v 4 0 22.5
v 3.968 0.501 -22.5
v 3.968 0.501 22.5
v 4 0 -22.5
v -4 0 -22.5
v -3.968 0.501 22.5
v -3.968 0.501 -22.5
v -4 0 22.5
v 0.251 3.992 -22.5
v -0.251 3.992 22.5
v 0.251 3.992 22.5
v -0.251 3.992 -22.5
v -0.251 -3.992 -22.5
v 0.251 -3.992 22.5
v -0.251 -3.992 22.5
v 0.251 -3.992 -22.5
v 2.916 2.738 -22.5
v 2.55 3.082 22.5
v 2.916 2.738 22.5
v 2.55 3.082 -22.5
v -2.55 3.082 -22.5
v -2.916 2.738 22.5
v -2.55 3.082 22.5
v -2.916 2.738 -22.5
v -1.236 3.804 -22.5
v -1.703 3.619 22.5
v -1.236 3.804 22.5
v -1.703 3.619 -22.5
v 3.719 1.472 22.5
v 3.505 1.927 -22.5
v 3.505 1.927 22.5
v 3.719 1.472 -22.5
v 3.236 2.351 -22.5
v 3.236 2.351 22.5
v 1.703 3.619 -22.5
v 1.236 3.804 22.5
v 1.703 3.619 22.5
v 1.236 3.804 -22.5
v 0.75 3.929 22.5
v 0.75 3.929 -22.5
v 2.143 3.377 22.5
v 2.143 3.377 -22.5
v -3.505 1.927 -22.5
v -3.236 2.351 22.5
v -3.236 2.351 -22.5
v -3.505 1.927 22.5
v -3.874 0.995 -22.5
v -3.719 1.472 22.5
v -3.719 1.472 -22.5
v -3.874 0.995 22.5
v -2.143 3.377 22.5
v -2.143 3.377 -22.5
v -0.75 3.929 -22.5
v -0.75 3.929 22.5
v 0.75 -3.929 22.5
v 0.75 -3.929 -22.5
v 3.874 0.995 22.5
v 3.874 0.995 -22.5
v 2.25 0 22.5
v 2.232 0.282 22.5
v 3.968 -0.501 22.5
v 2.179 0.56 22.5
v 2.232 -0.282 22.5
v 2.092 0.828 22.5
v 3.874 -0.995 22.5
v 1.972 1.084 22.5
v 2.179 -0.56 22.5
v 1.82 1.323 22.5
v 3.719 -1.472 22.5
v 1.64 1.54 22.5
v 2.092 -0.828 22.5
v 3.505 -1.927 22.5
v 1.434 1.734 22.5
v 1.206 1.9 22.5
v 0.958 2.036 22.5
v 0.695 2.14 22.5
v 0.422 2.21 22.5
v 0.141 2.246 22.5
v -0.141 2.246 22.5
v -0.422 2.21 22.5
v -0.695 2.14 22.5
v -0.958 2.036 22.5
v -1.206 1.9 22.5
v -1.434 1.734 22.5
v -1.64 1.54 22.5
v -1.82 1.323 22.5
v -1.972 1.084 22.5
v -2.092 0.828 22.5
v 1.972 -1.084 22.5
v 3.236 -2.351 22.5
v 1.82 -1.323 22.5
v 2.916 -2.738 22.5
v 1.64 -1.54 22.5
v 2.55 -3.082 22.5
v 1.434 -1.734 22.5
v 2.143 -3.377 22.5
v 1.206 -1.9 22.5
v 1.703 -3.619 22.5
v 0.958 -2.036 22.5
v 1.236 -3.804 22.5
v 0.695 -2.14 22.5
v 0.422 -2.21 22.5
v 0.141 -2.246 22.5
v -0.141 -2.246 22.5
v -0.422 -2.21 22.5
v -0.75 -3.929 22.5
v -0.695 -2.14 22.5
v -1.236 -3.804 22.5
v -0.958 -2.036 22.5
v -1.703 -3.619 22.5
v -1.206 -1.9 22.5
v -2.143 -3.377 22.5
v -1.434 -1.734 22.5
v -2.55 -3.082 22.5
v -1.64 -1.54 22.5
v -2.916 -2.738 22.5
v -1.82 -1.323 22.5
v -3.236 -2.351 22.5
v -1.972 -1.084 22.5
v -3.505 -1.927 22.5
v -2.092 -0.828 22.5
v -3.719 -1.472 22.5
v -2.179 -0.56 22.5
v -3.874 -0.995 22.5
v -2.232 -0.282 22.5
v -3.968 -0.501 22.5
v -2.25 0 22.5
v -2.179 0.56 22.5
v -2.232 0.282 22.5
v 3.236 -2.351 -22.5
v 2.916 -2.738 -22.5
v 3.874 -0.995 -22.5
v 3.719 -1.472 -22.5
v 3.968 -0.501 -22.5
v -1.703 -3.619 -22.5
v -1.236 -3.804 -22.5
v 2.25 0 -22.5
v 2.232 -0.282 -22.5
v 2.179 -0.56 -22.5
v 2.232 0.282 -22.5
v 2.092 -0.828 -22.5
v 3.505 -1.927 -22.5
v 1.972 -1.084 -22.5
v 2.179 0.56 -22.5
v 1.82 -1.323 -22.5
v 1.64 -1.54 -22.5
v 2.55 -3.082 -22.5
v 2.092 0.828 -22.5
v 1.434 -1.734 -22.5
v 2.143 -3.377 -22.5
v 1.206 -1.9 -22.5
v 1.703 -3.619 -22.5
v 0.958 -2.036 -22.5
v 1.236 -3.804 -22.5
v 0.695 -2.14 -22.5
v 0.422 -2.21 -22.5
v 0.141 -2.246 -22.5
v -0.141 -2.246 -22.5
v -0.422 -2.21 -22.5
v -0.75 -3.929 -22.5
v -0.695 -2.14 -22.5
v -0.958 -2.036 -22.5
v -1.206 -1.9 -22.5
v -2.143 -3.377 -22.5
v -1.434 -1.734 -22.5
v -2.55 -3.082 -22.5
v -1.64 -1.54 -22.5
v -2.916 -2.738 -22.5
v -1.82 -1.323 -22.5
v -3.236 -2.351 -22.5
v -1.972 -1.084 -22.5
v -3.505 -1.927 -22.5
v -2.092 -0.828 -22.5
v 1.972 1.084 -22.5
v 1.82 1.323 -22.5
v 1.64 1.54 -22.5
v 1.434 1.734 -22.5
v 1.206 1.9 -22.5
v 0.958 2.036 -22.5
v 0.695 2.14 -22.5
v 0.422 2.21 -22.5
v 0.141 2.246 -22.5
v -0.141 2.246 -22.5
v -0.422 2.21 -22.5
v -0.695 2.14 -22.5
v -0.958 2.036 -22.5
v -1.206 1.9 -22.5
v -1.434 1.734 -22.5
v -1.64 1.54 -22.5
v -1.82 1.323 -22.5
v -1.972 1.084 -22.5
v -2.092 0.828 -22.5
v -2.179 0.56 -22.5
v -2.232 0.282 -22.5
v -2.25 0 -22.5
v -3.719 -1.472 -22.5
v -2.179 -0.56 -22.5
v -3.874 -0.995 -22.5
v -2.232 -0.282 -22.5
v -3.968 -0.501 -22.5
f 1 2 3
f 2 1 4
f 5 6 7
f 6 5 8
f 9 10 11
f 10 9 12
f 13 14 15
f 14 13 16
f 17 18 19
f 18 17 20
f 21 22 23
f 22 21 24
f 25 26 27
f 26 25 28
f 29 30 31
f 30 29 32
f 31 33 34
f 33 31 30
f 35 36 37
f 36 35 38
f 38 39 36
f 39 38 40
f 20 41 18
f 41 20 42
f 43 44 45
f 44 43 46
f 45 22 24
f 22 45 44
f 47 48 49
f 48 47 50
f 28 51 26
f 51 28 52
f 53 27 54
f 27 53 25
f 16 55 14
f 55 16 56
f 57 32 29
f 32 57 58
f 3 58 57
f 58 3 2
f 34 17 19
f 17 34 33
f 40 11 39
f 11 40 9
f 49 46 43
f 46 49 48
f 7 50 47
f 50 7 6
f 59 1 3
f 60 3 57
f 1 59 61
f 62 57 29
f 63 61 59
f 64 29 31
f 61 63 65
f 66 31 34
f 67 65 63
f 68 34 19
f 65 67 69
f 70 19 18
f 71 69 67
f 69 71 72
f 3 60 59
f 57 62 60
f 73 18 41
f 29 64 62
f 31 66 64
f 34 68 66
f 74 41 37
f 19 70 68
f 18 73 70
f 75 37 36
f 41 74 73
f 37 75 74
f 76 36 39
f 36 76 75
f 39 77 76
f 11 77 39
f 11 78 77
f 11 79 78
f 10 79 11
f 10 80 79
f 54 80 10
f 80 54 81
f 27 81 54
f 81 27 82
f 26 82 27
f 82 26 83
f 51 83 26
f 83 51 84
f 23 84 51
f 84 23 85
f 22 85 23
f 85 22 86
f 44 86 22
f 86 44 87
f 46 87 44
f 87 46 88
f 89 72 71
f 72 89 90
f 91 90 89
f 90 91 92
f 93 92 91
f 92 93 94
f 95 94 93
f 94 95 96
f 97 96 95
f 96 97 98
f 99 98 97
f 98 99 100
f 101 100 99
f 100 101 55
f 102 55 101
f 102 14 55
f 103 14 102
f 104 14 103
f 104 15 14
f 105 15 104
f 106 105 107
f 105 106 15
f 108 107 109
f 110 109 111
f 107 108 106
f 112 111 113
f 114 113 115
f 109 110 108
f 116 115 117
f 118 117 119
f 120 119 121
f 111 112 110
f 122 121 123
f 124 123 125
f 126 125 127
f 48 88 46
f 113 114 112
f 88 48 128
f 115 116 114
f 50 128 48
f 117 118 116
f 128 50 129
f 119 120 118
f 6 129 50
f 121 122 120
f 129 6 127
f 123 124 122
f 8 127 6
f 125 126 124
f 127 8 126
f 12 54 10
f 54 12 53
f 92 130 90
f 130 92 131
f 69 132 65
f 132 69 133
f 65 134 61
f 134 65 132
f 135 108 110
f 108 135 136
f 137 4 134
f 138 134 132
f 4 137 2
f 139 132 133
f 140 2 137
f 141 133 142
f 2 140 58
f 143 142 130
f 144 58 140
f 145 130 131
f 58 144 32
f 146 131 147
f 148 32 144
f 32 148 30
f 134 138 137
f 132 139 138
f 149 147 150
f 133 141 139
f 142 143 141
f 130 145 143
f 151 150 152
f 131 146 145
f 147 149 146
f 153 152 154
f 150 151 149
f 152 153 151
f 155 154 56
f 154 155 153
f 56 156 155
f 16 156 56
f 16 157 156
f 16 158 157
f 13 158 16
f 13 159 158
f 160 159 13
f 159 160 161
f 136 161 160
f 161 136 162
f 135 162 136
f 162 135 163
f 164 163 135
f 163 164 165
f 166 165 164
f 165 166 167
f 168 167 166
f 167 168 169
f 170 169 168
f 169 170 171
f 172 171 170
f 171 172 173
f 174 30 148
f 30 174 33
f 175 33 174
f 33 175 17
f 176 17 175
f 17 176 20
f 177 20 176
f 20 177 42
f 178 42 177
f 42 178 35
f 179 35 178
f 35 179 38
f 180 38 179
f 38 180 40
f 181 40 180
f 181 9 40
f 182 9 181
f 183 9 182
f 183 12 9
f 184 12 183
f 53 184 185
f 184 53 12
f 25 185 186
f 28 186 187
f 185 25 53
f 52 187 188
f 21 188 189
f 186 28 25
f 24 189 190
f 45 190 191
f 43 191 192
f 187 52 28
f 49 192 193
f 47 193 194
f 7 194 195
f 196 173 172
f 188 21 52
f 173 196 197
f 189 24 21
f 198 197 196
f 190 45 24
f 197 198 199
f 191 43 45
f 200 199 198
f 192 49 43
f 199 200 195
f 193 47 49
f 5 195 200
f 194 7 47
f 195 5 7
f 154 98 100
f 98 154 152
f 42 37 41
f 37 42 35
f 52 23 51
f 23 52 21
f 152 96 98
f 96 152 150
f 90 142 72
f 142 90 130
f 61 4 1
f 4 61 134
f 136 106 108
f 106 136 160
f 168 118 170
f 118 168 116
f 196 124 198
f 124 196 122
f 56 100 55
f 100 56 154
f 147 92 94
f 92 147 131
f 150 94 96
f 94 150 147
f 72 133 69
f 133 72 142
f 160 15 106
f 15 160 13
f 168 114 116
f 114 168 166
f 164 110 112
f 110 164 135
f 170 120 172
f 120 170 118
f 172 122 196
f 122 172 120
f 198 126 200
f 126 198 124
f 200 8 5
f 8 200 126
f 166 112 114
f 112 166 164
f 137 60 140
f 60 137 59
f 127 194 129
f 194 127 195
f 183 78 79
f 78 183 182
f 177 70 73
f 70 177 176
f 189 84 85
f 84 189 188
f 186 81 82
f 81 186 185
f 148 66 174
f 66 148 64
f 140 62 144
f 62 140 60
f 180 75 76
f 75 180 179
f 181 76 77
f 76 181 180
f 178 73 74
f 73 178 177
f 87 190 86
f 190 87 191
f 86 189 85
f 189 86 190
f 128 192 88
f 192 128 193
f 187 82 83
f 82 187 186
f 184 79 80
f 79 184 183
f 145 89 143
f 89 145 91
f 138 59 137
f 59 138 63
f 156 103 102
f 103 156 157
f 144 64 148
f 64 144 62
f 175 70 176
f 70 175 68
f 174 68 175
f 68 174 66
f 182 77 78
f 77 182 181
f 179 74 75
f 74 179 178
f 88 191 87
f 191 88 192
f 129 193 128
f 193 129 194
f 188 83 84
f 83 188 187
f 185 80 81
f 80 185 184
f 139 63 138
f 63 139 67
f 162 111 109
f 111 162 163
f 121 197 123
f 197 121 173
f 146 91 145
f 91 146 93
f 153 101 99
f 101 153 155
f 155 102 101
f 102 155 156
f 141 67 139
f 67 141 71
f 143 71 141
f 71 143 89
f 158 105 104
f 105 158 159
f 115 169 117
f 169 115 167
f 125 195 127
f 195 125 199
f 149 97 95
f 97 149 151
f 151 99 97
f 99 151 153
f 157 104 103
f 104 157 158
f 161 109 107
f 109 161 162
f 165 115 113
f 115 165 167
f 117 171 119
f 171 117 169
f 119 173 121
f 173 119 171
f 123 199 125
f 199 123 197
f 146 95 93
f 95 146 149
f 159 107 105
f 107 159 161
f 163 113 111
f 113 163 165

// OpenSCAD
$fn = 50;


difference() {
	union() {
		translate(v = [0, 0, -22.5000000000]) {
			cylinder(h = 45, r = 4.0000000000);
		}
	}
	union() {
		translate(v = [0, 0, -100.0000000000]) {
			cylinder(h = 200, r = 2.2500000000);
		}
	}
}
